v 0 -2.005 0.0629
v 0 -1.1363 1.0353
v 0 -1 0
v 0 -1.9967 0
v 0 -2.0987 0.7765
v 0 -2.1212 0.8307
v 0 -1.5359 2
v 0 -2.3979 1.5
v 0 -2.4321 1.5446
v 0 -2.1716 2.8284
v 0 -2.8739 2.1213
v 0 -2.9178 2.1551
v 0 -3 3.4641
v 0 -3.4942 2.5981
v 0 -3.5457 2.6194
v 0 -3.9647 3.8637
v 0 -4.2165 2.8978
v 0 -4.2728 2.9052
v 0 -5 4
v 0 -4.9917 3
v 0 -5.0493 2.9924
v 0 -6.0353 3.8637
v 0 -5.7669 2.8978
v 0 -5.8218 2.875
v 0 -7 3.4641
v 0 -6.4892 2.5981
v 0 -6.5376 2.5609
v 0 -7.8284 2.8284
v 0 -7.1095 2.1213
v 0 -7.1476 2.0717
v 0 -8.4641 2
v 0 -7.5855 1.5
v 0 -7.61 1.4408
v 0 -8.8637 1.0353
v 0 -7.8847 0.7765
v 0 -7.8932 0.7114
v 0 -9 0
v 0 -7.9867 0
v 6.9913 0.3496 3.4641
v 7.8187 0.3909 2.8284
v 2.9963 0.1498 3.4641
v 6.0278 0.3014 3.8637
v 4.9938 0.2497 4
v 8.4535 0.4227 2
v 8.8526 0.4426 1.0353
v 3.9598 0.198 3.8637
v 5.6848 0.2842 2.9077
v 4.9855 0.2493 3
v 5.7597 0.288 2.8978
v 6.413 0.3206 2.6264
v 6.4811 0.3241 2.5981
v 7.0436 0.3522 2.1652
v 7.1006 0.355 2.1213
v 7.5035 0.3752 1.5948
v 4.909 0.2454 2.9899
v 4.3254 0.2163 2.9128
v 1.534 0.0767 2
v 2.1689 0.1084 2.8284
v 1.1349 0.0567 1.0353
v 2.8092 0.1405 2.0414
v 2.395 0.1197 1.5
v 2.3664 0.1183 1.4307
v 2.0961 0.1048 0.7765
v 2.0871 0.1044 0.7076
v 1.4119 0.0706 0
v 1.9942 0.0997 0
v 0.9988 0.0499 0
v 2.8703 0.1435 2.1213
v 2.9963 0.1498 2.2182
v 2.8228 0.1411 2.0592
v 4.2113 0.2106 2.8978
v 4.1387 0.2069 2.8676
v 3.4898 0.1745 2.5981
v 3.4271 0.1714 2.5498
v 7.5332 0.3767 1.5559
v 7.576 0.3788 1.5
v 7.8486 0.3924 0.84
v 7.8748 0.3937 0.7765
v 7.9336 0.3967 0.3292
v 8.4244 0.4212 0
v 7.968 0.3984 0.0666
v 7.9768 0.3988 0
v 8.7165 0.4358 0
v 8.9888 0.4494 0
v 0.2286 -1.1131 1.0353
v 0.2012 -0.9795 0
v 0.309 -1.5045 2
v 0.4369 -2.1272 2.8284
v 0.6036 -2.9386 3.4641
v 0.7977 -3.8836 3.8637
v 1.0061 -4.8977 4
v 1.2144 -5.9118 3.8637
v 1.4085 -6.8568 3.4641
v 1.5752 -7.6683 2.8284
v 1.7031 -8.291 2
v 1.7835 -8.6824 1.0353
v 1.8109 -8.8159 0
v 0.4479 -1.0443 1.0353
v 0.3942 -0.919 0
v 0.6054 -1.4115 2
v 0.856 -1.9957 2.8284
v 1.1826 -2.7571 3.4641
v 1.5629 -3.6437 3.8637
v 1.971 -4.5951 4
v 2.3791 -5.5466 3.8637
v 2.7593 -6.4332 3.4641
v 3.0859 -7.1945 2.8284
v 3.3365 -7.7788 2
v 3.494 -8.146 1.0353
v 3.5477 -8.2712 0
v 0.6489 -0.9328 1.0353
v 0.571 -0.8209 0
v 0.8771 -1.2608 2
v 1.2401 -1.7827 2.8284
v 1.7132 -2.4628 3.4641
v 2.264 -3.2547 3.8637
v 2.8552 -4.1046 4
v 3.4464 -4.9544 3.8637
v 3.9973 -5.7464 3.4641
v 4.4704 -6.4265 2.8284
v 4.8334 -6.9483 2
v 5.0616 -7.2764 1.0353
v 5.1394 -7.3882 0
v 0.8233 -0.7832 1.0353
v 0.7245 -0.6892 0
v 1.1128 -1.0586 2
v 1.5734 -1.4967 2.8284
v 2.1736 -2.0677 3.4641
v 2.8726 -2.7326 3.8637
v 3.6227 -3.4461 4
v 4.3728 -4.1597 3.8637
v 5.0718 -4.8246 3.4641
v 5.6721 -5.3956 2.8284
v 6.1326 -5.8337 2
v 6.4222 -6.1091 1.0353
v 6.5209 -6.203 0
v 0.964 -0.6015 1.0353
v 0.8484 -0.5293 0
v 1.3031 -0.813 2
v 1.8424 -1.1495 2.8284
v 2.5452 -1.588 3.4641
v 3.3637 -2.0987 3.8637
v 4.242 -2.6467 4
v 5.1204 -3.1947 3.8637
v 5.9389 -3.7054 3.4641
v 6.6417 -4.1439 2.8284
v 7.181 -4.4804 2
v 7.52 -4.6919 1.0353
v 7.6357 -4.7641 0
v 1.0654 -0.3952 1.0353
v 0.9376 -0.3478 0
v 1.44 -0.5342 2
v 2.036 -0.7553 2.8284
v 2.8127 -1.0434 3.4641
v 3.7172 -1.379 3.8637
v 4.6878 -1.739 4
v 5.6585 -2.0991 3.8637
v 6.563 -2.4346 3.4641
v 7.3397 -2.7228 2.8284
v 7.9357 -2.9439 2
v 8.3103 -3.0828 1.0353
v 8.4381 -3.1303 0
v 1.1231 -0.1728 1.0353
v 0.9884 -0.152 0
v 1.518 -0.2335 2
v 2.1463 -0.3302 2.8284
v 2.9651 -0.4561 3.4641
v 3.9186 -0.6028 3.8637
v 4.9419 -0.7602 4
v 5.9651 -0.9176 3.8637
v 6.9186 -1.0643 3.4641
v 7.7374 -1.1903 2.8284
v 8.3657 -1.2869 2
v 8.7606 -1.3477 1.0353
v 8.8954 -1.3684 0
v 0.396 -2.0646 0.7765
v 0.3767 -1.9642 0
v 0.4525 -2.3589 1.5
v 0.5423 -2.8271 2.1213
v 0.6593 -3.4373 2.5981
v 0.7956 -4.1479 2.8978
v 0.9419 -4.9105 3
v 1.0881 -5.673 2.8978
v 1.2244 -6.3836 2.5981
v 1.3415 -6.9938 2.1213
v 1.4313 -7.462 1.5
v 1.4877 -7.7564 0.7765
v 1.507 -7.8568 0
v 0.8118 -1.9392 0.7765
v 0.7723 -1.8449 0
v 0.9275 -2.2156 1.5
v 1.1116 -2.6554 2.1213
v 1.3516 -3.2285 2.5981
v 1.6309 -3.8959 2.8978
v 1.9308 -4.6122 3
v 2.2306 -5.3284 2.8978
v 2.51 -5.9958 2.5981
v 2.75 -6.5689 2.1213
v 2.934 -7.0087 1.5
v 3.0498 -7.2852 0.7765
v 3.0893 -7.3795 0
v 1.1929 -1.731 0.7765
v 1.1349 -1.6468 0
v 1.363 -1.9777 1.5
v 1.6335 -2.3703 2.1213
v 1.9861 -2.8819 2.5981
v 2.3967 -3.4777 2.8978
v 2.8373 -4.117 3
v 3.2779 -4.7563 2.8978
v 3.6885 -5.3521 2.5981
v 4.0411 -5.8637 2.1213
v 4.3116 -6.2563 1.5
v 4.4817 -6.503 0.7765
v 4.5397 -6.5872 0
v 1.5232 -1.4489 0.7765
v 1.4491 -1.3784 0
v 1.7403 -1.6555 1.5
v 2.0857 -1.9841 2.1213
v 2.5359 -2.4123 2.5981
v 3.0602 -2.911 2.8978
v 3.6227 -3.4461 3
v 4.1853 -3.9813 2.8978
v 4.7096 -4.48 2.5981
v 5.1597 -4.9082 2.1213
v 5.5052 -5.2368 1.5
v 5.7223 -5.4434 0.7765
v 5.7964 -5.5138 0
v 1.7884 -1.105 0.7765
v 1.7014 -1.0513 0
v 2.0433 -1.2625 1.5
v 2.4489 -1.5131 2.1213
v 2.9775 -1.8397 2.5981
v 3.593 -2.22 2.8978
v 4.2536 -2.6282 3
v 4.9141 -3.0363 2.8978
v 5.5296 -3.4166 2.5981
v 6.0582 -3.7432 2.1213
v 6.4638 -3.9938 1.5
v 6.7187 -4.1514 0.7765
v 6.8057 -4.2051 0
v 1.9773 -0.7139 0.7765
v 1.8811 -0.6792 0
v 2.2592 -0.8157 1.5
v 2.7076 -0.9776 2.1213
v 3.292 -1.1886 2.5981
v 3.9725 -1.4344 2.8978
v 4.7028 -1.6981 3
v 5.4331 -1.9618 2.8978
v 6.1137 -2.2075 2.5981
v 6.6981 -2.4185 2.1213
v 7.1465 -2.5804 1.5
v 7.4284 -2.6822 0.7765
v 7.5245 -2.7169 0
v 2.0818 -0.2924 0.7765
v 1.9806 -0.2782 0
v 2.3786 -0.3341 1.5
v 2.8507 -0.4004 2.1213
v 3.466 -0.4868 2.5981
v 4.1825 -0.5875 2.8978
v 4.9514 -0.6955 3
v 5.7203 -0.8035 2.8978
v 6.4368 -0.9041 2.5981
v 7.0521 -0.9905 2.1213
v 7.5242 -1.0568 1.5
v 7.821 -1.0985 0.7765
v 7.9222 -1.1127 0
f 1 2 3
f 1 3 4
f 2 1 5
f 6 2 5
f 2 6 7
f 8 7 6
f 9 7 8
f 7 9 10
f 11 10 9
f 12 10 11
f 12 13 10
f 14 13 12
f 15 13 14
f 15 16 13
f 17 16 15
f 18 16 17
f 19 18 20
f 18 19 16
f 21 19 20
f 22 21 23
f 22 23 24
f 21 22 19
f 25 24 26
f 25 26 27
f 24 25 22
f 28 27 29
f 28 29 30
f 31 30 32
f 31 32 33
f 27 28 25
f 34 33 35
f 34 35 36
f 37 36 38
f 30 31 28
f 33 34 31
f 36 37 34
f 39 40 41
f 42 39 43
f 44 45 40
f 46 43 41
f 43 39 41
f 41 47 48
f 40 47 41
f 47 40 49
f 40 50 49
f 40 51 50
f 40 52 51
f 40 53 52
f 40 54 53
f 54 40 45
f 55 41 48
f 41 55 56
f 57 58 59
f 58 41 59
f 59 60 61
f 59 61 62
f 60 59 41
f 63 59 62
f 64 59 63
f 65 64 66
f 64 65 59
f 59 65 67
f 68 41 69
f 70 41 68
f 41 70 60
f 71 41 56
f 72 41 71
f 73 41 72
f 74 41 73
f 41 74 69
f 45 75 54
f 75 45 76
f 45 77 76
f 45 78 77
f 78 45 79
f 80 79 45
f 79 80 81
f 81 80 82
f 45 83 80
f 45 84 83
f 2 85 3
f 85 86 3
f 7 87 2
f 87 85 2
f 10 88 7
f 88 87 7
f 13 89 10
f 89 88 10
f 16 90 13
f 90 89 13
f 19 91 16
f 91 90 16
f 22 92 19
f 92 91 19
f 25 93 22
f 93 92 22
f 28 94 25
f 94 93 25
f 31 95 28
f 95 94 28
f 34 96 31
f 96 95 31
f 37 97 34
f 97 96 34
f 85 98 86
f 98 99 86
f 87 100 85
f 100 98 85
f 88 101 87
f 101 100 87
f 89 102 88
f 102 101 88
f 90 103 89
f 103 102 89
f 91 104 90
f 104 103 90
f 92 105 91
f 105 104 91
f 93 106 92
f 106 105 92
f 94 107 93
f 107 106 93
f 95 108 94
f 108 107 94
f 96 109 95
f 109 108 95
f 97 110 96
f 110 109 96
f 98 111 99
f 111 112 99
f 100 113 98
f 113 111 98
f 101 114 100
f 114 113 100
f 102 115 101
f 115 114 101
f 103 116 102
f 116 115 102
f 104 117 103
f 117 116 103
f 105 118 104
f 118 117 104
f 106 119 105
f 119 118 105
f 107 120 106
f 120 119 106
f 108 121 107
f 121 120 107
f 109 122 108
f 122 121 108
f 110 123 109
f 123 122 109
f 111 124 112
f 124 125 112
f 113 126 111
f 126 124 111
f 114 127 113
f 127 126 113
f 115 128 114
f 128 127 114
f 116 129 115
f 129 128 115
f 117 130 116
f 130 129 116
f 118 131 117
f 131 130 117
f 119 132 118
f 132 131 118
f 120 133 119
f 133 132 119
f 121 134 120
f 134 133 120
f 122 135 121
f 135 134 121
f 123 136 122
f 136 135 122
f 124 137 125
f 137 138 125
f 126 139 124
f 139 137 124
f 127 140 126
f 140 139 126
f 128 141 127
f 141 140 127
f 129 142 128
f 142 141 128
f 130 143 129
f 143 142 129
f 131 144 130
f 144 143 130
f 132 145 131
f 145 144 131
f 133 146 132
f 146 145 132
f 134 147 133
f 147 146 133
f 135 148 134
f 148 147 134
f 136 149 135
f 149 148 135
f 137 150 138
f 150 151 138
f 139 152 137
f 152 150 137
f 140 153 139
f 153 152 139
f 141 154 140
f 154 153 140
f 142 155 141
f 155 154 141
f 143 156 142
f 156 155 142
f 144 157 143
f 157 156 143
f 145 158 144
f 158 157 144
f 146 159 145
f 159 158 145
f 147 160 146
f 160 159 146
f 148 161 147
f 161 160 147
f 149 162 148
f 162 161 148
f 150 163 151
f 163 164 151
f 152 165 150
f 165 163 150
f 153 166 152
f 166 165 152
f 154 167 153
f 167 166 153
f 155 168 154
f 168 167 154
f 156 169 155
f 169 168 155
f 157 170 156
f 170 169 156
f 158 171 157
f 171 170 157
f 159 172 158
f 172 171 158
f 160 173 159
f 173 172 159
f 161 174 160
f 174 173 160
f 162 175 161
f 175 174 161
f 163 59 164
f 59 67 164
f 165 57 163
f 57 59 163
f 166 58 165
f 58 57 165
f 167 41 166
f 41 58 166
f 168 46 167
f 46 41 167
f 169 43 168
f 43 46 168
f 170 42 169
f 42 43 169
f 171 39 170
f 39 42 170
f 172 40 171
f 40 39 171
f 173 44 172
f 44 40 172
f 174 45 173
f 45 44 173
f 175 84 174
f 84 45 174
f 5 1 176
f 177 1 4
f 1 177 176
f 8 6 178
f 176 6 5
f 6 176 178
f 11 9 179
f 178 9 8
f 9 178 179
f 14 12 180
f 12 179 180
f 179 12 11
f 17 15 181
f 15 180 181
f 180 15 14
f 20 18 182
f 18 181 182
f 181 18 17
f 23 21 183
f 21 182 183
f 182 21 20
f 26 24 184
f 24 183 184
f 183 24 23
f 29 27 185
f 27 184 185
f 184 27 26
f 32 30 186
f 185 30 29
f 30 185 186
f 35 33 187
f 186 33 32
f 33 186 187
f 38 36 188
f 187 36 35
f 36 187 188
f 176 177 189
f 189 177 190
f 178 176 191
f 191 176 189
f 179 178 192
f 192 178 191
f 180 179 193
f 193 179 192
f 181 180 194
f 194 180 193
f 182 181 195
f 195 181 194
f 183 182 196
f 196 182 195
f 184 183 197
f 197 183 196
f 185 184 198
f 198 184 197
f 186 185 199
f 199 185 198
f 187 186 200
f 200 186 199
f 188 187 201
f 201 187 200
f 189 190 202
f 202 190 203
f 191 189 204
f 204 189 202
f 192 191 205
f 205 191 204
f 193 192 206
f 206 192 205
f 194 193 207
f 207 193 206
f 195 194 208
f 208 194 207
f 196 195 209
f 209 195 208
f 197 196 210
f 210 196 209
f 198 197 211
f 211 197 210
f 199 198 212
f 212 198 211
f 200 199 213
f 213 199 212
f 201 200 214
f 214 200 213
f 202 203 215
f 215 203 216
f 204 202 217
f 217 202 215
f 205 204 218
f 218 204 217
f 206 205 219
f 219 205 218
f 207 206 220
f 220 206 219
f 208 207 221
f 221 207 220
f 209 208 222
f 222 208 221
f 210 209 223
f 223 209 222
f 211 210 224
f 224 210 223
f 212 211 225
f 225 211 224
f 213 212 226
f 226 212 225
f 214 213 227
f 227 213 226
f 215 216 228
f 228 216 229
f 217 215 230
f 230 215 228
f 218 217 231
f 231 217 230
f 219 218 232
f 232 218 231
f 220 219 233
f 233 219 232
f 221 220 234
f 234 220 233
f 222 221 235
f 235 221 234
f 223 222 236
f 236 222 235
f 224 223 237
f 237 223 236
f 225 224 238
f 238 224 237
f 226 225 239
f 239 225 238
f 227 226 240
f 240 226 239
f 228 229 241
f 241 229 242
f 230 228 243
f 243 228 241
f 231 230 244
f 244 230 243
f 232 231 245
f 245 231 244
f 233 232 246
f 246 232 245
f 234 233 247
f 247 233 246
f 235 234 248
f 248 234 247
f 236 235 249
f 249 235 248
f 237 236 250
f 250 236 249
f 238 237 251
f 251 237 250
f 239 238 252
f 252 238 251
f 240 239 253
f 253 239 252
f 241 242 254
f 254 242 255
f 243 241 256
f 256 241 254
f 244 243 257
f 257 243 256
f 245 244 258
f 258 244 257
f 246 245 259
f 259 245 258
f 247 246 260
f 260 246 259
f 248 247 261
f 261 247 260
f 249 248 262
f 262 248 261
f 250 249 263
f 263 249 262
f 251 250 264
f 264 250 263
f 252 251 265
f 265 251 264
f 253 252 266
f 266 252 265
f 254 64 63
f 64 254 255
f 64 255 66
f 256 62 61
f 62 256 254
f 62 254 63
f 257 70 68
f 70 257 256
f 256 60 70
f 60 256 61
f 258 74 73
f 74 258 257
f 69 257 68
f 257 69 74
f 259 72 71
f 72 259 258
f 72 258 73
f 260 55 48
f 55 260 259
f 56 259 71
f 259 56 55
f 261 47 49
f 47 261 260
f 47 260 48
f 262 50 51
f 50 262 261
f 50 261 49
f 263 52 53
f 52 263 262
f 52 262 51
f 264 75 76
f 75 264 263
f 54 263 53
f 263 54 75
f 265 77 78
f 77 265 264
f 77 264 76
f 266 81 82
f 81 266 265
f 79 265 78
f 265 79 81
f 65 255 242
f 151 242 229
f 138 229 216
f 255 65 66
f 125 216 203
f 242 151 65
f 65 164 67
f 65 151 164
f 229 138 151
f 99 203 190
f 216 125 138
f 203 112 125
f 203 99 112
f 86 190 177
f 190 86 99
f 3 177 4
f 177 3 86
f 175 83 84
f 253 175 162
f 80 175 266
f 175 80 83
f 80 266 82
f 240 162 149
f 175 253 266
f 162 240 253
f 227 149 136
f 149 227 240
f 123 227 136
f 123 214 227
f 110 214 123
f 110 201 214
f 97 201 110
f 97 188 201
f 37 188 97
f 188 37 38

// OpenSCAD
// file: ../build_environments.scad
// build_environments.scad: modules to build level sections
//

module pool(diameter=10.0, wall_height=2.0, step_width=3.0, connections=[])
{
    difference() {
        union() {
        difference() {
            cylinder(h=0.5,r1=diameter+step_width,r2=diameter+step_width,$fn=48);
            translate([0,0,-0.1])
                cylinder(h=0.7,r1=diameter,r2=diameter,$fn=48);
        }
        difference() {
            cylinder(h=wall_height,r1=diameter+step_width+1.0,r2=diameter+step_width+1.0,$fn=48);
            translate([0,0,-0.1])
                cylinder(h=wall_height+0.2,r1=diameter+step_width,r2=diameter+step_width,$fn=48);
        }
        }
    
        for (c = connections)
        {
            rotate([0,90,0]) {
                angle = atan2(c[1],c[0]);
                rotate([-angle,0,0]) {
                    cylinder(h=diameter+5.0,r1=c[2],r2=c[2],$fn=48);
                }
            }
        }
    }
}

module straight(length=10.0, width=2.0, dy1=0.0, dy2=0.0, dz=0.0)
{
    dims = [0, 0, 0, 0, 0, (dz/length)];
    matrix = [
        [ 1, dims[0], dims[1], 0 ],
        [ dims[2], 1, dims[4], 0 ],
        [ dims[5], dims[3], 1, 0 ],
        [ 0, 0, 0, 1 ]
    ];
    multmatrix(matrix)
    difference() {
        translate([dy1,0,0])
        union() {
            rotate([0,90,0]) {
                difference() {
                    cylinder(h=(length-dy1-dy2),r1=width+1.0,r2=width+1.0,$fn=24);
                    translate([0,0,-0.1])
                        cylinder(h=(length-dy1-dy2+0.2),r1=width,r2=width,$fn=24);
                }
                difference() {
                    cylinder(h=1.0,r1=width+2.0,r2=width+2.0,$fn=24);
                    translate([0,0,-0.1])
                        cylinder(h=1.2,r1=width,r2=width,$fn=24);
                }
                translate([0,0,(length-dy1-dy2)-1.0]) {
                    difference() {
                        cylinder(h=1.0,r1=width+2.0,r2=width+2.0,$fn=24);
                        translate([0,0,-0.1])
                            cylinder(h=1.2,r1=width,r2=width,$fn=24);
                    }
                }
            }
        }
        translate([0,0,-(2*width+4.0)/2])
            cube([3*length,3*length,2*width+4.0],center=true);
    }
}

module curve(p0=[0,0], center=[0,0], dir=1, angle=0.0, width=2.0)
{
    radius = sqrt((p0[0]-center[0])*(p0[0]-center[0]) + (p0[1]-center[1])*(p0[1]-center[1]));
    if (dir == 0) {
        difference() {
            rotate([0,0,-90])
            difference() {
                rotate_extrude(angle = angle, convexity = 10, $fn=32)
                    translate([radius, 0, 0])
                        circle(r = width+1.0,$fn=24);
                rotate([0,0,-1.0])
                    rotate_extrude(angle = angle+2.0, convexity = 10, $fn=32)
                        translate([radius, 0, 0])
                            circle(r = width,$fn=24);
            }
            translate([0,0,-(2*width+4.0)/2])
                cube([5*radius,5*radius,2*width+4.0],center=true);
        }
    }
    else {
        difference() {
            rotate([0,0,90])
            difference() {
                rotate_extrude(angle = -angle, convexity = 10, $fn=32)
                    translate([radius, 0, 0])
                        circle(r = width+1.0,$fn=24);
                rotate([0,0,1.0])
                    rotate_extrude(angle = -angle-2.0, convexity = 10, $fn=32)
                        translate([radius, 0, 0])
                            circle(r = width,$fn=24);
            }
            translate([0,0,-(2*width+4.0)/2])
                cube([5*radius,5*radius,2*width+4.0],center=true);
        }
    }

}

// test pool
//pool(diameter=12.0000, wall_height=3.0000, step_width=3.0000, connections=[[0.0000,-26.0000,2.0000], [23.6074,0.0000,2.0000]]);

// test straight, slope
//straight(length=26.0000, width=2.0000, dy1=11.8322, dy2=6.7082, dz=0.0000);
//straight(length=29.1549, width=12.0000, dy1=0.0000, dy2=0.0000, dz=-15.0000);

// test curve
//curve(p0=[23.6074, 0.0000], center=[23.6074, 5.0000], dir=0, angle=60.1011, width=2.0000);
//curve(p0=[33.6426, 12.4219], center=[37.9771, 9.9295], dir=1, angle=120.4627, width=2.0000);
// main file
use <../build_environments.scad>;
curve(p0=[-114.0000, 129.7438], center=[-119.0000, 129.7438], dir=0, angle=92.8624, width=3.0000);
